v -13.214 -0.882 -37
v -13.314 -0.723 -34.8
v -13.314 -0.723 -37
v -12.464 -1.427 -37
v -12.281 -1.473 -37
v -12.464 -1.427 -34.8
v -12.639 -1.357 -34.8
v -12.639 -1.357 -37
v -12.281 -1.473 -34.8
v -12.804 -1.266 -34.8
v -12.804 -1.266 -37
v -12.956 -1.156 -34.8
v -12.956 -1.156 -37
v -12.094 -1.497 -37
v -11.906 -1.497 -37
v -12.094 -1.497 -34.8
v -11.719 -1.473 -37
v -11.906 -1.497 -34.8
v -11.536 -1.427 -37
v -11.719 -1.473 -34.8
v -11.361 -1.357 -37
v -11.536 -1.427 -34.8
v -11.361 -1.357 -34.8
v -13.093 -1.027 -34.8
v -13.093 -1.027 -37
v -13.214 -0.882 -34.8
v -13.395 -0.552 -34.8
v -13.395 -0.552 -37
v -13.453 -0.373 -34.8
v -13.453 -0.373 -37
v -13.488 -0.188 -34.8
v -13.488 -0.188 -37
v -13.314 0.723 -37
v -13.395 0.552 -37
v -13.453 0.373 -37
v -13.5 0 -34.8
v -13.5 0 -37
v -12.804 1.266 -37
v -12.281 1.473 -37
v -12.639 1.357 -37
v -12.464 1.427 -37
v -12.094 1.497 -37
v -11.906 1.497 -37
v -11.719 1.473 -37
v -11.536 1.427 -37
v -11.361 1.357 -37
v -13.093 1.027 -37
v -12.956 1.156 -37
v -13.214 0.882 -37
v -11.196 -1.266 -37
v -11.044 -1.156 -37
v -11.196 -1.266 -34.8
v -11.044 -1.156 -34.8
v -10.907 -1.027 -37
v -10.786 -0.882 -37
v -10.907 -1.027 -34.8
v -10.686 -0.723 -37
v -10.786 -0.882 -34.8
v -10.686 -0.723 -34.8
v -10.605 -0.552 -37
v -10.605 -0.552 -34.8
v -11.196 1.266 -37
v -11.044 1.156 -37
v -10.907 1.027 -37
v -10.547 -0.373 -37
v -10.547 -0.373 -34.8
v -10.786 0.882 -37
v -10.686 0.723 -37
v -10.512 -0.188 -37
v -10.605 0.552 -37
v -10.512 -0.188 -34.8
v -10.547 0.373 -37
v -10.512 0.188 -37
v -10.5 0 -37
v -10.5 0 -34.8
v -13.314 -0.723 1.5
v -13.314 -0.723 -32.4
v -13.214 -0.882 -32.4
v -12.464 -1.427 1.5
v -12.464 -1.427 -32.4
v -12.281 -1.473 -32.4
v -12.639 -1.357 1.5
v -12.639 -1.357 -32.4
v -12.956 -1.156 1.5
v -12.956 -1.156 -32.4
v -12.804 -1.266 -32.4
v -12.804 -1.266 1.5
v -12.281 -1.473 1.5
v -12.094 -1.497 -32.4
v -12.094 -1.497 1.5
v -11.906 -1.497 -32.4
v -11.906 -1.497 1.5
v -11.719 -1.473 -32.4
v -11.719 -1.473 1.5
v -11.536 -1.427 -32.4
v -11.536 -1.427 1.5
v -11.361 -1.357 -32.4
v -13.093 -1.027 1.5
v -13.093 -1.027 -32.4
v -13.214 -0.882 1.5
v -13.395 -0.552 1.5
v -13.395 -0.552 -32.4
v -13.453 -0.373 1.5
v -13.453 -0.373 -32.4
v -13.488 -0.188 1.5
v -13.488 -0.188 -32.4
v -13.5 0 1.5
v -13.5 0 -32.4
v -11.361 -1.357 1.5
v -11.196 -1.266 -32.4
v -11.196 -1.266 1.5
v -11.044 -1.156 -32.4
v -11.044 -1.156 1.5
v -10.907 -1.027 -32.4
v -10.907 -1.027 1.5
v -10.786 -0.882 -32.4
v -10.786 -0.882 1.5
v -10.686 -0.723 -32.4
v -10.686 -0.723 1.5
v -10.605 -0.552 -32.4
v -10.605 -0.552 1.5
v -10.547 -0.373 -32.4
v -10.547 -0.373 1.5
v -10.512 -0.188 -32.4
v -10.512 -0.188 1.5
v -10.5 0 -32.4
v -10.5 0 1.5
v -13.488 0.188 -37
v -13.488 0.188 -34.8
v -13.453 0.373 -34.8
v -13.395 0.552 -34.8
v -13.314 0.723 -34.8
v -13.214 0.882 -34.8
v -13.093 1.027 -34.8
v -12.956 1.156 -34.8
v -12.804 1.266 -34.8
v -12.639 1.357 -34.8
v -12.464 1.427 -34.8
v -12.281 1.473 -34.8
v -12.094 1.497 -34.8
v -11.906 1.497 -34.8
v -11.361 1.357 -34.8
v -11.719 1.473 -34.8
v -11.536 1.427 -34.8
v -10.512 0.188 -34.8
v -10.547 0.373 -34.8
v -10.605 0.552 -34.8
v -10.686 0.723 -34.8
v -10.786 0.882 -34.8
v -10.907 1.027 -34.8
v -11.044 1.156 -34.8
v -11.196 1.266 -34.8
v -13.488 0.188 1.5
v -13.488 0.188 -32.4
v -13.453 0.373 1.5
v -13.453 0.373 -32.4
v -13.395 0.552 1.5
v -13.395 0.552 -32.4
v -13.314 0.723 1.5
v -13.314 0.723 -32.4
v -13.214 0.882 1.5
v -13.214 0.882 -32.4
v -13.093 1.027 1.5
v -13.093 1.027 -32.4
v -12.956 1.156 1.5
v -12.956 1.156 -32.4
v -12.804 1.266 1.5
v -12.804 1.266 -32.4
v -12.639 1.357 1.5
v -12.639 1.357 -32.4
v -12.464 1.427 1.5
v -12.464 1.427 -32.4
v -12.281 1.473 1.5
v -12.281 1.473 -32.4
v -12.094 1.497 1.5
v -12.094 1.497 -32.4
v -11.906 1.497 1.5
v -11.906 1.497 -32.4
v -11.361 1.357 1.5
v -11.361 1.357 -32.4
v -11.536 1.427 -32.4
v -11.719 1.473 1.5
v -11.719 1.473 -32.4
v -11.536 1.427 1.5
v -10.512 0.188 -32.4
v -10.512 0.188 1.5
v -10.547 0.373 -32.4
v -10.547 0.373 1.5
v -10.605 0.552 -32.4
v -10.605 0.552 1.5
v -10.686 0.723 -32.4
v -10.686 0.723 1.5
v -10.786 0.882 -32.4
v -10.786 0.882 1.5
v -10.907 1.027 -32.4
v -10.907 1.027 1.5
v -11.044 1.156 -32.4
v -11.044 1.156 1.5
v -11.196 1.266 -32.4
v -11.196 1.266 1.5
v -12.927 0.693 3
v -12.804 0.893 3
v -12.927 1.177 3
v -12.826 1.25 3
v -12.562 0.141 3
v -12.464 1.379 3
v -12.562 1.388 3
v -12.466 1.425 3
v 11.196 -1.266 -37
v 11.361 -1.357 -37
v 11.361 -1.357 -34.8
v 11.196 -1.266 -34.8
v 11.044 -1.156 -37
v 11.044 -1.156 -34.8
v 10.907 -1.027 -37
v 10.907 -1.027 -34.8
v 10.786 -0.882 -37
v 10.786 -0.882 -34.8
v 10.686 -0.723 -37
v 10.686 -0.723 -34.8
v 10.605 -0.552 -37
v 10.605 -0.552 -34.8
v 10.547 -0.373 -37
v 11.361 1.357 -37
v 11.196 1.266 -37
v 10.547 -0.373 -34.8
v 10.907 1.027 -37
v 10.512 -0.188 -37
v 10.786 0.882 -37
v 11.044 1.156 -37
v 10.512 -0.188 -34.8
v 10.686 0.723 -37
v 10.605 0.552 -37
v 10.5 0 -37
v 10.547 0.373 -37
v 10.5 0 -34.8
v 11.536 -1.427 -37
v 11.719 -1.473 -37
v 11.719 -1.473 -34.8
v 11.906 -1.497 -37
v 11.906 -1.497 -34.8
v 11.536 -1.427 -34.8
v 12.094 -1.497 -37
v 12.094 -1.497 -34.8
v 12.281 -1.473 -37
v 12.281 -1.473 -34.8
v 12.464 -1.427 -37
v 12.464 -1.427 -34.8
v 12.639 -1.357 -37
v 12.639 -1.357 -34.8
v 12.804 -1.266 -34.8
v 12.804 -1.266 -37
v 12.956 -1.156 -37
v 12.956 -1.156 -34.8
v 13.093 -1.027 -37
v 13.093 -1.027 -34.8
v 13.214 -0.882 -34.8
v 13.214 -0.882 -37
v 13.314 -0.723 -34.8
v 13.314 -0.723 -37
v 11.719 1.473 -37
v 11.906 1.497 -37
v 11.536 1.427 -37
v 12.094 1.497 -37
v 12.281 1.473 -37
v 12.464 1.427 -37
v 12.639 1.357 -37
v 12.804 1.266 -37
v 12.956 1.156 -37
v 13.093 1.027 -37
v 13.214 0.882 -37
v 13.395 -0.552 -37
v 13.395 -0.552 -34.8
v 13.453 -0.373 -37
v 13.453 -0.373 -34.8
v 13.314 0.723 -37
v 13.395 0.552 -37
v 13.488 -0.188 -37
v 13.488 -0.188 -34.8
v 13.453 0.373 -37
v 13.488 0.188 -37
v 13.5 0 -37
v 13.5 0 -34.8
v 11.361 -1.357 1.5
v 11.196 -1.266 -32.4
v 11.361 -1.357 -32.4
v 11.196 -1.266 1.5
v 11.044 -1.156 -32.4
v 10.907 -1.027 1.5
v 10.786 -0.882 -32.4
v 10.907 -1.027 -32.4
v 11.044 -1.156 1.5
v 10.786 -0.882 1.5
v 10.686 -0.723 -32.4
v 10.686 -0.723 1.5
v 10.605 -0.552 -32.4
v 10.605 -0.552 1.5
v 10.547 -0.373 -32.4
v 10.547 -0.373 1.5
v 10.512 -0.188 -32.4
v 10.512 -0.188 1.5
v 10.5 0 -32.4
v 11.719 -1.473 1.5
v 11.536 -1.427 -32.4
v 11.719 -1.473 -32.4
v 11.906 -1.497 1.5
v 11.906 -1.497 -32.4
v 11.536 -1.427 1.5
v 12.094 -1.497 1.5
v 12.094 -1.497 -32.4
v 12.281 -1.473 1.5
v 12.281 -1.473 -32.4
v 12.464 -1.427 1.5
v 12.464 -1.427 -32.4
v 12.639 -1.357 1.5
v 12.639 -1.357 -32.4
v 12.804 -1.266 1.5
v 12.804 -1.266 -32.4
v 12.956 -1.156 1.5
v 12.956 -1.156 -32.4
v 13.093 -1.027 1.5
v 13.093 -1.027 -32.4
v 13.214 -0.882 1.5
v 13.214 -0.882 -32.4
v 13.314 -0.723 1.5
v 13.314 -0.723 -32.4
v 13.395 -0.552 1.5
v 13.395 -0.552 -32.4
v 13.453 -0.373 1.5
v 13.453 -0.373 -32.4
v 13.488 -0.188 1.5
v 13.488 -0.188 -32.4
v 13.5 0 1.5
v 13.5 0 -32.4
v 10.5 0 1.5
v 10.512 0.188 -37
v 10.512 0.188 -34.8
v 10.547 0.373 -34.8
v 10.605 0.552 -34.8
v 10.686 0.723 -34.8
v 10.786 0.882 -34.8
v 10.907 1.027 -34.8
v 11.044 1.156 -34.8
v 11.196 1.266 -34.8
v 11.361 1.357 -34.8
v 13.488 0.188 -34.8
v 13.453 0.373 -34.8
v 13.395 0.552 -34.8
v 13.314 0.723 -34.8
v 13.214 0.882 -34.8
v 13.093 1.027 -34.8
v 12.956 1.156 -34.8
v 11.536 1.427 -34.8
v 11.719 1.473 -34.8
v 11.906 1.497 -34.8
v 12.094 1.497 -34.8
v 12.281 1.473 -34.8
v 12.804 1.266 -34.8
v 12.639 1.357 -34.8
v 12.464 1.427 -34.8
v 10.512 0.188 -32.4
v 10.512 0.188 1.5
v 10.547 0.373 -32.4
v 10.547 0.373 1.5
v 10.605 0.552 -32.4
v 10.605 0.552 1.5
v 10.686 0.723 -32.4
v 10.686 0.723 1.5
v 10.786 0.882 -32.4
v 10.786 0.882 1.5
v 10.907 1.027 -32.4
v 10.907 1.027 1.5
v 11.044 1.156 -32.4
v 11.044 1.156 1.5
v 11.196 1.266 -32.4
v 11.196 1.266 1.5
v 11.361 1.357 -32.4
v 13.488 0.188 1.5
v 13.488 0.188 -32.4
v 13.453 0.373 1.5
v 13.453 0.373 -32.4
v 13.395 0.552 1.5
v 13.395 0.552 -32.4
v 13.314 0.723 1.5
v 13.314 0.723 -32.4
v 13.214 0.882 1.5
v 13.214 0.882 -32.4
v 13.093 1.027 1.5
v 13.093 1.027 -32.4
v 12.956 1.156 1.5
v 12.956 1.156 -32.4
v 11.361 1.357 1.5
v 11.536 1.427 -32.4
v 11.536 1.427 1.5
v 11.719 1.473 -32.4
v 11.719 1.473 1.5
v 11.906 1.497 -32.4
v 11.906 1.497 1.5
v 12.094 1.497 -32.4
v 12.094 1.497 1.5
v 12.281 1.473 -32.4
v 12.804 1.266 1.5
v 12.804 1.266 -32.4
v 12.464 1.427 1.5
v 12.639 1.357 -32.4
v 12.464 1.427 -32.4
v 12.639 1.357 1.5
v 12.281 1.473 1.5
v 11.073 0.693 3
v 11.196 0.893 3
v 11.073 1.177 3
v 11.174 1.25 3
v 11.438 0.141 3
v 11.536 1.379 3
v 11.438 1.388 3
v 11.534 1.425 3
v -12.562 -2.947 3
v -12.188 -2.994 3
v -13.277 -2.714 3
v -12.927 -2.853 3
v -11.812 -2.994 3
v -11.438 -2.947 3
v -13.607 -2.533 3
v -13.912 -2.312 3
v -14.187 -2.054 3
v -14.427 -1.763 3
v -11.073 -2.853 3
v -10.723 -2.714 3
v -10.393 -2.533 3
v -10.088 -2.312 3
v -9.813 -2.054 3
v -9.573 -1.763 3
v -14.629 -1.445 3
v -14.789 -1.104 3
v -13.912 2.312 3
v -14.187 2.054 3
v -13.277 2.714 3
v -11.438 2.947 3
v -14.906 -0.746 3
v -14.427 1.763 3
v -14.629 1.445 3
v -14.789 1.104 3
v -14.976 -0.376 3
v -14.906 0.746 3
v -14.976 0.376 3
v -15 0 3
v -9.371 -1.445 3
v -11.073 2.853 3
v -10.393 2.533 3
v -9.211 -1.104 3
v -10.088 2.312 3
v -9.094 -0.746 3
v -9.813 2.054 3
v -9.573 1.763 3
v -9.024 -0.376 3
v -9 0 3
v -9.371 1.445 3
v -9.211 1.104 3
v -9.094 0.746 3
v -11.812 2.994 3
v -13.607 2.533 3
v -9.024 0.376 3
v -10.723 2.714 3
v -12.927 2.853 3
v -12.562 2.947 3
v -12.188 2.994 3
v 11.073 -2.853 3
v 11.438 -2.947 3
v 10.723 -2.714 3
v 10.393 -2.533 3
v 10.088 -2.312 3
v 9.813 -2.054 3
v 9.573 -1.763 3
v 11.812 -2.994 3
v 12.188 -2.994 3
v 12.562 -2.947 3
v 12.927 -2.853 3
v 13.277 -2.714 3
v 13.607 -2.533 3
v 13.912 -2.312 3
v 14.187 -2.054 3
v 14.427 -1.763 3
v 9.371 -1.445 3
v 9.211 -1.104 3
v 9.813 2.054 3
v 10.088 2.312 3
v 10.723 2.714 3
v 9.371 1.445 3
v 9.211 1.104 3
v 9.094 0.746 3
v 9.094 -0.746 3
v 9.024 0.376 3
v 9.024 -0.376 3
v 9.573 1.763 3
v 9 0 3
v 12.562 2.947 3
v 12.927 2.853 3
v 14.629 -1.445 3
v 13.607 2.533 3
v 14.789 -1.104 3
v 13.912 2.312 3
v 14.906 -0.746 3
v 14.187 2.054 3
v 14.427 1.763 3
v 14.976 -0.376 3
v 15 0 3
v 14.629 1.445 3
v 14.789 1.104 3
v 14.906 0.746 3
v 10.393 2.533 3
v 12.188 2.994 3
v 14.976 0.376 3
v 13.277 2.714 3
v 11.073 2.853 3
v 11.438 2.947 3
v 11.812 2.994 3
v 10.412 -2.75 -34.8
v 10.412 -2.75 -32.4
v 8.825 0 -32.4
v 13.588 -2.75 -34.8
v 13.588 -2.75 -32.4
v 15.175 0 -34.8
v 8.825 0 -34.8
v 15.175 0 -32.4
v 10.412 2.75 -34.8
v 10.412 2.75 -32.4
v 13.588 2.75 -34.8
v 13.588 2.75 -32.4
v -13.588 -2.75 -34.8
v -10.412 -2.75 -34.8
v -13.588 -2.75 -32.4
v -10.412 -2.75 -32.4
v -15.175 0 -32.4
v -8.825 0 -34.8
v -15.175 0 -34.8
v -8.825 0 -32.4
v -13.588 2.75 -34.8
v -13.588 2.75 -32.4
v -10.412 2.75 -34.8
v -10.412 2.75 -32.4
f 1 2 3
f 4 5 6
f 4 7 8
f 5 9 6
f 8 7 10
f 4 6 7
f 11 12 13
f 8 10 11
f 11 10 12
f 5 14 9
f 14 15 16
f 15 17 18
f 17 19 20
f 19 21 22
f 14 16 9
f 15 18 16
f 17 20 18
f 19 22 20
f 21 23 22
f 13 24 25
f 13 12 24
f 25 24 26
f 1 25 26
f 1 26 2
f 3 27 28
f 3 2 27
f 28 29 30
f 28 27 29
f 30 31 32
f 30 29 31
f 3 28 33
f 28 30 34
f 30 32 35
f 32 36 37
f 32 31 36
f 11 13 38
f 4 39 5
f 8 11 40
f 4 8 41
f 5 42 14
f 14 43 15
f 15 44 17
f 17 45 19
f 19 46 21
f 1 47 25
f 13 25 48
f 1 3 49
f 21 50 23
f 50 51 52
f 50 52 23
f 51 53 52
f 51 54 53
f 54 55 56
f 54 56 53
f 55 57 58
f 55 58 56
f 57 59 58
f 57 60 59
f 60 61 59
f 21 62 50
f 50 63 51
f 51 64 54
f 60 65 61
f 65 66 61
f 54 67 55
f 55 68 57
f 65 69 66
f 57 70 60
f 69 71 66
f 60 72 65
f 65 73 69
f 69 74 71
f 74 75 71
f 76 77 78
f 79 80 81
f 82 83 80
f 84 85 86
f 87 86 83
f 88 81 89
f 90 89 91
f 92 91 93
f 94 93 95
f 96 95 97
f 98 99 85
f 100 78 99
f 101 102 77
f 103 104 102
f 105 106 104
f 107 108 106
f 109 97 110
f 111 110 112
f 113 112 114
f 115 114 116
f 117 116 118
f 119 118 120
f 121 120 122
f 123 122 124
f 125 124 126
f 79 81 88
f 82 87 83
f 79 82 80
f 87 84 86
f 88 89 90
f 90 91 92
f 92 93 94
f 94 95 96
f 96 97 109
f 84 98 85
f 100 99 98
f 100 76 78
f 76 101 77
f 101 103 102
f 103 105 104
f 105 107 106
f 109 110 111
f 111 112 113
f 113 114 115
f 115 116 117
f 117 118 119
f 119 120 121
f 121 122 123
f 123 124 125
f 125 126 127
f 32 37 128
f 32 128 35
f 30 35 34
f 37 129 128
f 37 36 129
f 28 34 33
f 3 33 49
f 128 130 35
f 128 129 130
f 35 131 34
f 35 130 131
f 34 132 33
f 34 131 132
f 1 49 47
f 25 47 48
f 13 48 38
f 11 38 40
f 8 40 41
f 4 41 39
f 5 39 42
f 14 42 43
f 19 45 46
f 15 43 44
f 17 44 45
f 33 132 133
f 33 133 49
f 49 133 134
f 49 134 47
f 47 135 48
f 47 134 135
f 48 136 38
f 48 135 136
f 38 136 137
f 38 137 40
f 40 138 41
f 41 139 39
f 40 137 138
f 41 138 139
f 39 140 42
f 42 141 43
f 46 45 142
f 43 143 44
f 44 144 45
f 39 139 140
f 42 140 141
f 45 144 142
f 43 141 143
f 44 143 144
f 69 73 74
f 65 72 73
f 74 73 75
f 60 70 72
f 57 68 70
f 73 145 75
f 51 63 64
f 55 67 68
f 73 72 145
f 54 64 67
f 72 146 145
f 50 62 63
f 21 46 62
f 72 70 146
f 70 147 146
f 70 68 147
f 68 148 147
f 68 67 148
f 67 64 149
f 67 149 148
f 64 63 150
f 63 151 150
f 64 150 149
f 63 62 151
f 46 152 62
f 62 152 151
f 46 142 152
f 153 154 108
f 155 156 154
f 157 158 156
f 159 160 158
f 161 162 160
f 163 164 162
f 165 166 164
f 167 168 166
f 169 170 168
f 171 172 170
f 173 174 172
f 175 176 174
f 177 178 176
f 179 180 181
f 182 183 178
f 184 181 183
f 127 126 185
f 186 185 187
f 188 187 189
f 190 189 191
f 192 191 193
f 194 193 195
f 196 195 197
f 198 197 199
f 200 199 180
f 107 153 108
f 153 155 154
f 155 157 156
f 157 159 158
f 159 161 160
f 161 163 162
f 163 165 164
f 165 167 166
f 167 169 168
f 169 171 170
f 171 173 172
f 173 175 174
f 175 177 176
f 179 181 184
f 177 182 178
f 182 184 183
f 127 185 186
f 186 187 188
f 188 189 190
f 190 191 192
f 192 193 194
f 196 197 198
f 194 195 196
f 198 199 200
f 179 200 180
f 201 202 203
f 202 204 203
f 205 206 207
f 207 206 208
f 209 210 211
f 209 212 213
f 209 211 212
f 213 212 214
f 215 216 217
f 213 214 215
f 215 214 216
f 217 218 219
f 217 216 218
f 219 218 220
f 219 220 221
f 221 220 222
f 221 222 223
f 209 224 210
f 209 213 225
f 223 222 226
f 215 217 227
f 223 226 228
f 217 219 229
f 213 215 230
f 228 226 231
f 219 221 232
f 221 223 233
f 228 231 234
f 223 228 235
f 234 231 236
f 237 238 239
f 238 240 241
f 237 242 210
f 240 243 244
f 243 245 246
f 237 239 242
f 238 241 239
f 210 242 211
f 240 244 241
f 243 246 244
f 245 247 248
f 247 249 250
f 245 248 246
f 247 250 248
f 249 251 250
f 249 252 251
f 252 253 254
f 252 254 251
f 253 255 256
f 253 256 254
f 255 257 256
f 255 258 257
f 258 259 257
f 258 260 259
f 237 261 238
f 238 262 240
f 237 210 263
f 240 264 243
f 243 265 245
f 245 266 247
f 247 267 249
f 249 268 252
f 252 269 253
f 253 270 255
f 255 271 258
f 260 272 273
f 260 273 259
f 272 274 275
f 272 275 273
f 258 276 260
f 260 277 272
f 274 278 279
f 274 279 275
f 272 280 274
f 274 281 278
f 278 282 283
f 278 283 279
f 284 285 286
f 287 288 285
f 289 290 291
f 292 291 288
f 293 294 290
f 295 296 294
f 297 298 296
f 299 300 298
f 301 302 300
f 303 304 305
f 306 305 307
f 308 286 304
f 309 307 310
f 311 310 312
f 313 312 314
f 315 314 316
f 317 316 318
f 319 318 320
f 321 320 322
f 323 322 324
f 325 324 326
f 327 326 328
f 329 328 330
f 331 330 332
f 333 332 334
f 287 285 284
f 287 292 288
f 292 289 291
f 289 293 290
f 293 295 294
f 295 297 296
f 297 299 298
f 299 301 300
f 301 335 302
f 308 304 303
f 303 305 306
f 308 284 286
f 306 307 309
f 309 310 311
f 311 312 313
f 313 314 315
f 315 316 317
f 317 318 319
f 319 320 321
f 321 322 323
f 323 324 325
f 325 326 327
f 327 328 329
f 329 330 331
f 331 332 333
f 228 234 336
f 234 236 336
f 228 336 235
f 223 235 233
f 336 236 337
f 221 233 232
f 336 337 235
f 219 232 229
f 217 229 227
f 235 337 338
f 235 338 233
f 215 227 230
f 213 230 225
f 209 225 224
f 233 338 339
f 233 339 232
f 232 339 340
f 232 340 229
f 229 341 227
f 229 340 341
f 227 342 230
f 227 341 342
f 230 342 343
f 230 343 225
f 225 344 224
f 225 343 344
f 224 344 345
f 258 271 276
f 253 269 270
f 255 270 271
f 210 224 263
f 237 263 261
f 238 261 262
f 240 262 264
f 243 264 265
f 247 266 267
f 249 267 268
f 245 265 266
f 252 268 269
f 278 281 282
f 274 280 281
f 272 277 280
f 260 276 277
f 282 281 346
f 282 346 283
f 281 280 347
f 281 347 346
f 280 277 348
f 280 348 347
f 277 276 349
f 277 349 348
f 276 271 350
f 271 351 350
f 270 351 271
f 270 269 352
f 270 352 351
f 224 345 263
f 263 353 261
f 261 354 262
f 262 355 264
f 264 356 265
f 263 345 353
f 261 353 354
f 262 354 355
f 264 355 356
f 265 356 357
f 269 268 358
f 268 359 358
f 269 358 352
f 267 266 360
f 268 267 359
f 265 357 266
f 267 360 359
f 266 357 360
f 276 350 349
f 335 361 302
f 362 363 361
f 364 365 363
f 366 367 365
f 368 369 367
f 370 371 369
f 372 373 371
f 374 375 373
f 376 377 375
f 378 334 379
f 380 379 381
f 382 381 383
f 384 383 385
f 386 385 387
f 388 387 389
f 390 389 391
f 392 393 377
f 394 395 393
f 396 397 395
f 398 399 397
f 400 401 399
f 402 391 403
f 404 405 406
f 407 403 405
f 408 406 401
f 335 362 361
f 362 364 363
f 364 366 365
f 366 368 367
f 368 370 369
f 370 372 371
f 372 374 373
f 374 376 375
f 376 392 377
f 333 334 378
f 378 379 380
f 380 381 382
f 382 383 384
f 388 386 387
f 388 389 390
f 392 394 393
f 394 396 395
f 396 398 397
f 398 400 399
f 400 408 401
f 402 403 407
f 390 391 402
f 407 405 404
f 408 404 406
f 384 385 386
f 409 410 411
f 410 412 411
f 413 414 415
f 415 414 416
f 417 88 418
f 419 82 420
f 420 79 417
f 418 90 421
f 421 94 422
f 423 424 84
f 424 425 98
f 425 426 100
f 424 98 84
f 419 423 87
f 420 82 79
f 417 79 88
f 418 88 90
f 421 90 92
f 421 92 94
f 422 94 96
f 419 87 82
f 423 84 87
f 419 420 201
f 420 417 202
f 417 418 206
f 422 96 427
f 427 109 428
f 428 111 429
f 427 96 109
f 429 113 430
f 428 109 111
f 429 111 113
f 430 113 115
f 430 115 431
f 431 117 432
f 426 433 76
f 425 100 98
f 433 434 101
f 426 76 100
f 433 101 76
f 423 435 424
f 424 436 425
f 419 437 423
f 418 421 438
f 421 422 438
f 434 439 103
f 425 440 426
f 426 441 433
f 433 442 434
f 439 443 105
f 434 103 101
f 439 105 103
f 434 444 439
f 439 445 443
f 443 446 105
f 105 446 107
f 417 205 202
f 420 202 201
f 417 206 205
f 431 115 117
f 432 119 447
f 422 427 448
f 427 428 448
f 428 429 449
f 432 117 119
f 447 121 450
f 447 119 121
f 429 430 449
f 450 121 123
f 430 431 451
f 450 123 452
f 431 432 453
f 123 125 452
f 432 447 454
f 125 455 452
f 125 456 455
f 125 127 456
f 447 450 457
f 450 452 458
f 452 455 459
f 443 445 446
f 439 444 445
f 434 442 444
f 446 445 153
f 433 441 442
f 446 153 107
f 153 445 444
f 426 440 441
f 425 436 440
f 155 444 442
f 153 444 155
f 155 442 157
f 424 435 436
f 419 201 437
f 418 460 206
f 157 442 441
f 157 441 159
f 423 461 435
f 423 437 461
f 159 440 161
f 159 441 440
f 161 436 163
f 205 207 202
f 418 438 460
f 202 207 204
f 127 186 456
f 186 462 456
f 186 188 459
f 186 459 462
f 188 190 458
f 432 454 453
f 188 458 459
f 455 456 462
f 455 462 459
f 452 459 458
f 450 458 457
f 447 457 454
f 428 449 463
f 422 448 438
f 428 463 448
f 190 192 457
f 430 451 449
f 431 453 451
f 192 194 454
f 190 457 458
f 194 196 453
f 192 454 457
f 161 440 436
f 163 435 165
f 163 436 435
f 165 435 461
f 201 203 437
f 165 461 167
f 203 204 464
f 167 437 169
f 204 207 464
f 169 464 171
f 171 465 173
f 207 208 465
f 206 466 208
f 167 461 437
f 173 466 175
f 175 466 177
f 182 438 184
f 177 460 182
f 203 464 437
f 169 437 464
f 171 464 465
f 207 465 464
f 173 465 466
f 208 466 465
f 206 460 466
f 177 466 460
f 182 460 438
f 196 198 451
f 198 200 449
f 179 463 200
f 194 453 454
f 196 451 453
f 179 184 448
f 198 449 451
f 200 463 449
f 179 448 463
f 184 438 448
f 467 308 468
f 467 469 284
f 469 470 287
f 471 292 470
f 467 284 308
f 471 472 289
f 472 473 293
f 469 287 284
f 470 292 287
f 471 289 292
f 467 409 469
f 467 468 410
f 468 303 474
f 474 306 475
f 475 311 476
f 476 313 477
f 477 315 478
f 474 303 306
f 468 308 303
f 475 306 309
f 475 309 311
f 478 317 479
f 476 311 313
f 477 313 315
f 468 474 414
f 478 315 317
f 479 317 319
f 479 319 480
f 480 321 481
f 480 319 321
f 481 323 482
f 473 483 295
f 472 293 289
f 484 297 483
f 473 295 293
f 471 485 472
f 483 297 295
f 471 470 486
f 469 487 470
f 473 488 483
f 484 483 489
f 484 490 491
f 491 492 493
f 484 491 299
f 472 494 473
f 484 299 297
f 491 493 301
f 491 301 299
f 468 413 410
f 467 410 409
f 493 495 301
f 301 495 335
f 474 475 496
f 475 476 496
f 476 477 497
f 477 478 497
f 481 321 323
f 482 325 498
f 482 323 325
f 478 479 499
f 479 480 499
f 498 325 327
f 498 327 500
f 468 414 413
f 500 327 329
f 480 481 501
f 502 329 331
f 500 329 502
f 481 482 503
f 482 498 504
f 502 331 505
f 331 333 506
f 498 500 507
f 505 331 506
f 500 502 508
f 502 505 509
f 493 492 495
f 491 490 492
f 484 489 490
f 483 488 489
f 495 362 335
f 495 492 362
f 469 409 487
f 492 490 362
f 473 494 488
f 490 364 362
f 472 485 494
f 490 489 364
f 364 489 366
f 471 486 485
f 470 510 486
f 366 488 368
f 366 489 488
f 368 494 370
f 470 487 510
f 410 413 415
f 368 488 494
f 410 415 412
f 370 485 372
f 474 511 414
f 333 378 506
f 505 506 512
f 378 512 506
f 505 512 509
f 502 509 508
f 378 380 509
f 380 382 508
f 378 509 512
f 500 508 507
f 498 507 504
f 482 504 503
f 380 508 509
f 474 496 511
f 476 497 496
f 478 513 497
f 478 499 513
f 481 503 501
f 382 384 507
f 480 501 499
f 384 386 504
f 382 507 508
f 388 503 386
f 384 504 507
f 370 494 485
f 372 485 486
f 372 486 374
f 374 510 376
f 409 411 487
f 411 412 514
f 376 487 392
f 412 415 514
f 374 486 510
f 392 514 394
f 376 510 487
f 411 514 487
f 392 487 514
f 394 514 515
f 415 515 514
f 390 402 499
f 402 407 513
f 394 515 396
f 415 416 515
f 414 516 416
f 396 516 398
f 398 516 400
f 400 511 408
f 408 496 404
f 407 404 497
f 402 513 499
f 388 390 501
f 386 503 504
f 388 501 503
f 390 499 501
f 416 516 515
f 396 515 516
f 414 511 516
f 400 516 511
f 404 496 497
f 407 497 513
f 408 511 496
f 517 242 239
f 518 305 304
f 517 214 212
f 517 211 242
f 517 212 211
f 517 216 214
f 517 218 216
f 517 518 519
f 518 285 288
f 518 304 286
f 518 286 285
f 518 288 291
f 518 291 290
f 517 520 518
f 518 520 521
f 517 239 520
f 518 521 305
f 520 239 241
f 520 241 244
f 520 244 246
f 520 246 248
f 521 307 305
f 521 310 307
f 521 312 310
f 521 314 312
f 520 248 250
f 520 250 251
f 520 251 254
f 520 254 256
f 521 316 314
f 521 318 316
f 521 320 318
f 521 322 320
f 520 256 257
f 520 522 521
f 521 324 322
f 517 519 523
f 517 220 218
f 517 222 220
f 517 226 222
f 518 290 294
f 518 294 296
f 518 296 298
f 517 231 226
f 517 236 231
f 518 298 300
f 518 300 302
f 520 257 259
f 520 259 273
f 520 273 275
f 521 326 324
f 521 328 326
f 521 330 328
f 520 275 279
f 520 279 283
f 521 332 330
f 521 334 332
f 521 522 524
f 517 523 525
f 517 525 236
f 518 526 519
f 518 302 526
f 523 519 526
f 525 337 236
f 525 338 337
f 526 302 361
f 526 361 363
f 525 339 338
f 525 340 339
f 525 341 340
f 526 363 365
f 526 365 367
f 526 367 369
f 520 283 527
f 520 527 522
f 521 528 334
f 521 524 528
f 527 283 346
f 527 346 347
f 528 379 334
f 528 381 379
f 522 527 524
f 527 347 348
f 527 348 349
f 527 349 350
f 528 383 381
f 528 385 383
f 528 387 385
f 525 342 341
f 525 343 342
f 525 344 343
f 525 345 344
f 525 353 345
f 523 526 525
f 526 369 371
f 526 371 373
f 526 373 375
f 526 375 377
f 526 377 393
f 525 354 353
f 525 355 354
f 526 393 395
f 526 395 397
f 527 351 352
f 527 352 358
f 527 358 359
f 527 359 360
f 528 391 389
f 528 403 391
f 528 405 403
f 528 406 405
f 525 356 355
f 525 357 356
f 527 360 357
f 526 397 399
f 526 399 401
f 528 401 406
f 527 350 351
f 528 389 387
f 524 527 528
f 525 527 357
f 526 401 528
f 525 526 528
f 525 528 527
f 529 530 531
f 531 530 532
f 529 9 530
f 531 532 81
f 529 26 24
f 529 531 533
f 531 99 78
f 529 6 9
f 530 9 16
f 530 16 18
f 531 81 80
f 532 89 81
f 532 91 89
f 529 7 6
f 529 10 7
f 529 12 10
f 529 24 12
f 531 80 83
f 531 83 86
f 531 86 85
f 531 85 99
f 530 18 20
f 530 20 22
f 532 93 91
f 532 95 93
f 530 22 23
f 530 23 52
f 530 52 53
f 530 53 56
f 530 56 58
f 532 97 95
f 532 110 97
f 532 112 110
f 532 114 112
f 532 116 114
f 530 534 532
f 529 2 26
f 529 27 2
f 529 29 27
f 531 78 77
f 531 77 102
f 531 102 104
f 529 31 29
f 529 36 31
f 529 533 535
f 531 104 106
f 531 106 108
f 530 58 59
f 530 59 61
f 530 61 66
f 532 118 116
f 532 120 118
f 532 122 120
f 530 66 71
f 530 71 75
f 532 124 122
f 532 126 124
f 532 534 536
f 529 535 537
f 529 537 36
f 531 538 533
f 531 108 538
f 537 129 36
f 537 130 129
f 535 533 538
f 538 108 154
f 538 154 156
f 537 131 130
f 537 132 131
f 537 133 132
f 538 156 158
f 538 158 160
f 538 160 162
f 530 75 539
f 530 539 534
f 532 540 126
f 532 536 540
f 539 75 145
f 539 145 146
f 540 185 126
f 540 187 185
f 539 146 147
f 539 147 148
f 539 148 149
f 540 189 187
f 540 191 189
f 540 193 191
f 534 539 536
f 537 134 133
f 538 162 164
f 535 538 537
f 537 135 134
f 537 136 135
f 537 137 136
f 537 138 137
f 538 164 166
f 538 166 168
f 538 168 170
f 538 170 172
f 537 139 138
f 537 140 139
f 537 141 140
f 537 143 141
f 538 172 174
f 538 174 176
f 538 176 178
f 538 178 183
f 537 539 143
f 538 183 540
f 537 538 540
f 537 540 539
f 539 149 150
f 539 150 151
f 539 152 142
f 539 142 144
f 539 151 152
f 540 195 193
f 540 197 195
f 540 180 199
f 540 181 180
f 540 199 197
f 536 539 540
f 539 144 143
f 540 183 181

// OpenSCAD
$fn = 50;

difference() {
	union() {
		translate(v = [-12, 0, 3]) {
			rotate(a = [0, 0, 0]) {
				difference() {
					union() {
						translate(v = [0, 0, -40.0]) {
							cylinder(h = 40, r = 1.5);
						}
						translate(v = [0, 0, -1.5]) {
							cylinder(h = 1.5, r1 = 1.5, r2 = 3);
						}
					}
					union();
				}
			}
		}
		translate(v = [-12, 0, -34.800000000000004]) {
			rotate(a = [0, 0, 0]) {
				difference() {
					union() {
						linear_extrude(height = 2.4) {
							polygon(points = [[3.1754264805429417, 0.0], [1.5877132402714713, 2.75], [-1.5877132402714702, 2.7500000000000004], [-3.1754264805429417, 3.888775875324659e-16], [-1.5877132402714722, -2.7499999999999996], [1.5877132402714687, -2.7500000000000013]]);
						}
					}
					union();
				}
			}
		}
		translate(v = [12, 0, 3]) {
			rotate(a = [0, 0, 0]) {
				difference() {
					union() {
						translate(v = [0, 0, -40.0]) {
							cylinder(h = 40, r = 1.5);
						}
						translate(v = [0, 0, -1.5]) {
							cylinder(h = 1.5, r1 = 1.5, r2 = 3);
						}
					}
					union();
				}
			}
		}
		translate(v = [12, 0, -34.800000000000004]) {
			rotate(a = [0, 0, 0]) {
				difference() {
					union() {
						linear_extrude(height = 2.4) {
							polygon(points = [[3.1754264805429417, 0.0], [1.5877132402714713, 2.75], [-1.5877132402714702, 2.7500000000000004], [-3.1754264805429417, 3.888775875324659e-16], [-1.5877132402714722, -2.7499999999999996], [1.5877132402714687, -2.7500000000000013]]);
						}
					}
					union();
				}
			}
		}
	}
	union();
}
